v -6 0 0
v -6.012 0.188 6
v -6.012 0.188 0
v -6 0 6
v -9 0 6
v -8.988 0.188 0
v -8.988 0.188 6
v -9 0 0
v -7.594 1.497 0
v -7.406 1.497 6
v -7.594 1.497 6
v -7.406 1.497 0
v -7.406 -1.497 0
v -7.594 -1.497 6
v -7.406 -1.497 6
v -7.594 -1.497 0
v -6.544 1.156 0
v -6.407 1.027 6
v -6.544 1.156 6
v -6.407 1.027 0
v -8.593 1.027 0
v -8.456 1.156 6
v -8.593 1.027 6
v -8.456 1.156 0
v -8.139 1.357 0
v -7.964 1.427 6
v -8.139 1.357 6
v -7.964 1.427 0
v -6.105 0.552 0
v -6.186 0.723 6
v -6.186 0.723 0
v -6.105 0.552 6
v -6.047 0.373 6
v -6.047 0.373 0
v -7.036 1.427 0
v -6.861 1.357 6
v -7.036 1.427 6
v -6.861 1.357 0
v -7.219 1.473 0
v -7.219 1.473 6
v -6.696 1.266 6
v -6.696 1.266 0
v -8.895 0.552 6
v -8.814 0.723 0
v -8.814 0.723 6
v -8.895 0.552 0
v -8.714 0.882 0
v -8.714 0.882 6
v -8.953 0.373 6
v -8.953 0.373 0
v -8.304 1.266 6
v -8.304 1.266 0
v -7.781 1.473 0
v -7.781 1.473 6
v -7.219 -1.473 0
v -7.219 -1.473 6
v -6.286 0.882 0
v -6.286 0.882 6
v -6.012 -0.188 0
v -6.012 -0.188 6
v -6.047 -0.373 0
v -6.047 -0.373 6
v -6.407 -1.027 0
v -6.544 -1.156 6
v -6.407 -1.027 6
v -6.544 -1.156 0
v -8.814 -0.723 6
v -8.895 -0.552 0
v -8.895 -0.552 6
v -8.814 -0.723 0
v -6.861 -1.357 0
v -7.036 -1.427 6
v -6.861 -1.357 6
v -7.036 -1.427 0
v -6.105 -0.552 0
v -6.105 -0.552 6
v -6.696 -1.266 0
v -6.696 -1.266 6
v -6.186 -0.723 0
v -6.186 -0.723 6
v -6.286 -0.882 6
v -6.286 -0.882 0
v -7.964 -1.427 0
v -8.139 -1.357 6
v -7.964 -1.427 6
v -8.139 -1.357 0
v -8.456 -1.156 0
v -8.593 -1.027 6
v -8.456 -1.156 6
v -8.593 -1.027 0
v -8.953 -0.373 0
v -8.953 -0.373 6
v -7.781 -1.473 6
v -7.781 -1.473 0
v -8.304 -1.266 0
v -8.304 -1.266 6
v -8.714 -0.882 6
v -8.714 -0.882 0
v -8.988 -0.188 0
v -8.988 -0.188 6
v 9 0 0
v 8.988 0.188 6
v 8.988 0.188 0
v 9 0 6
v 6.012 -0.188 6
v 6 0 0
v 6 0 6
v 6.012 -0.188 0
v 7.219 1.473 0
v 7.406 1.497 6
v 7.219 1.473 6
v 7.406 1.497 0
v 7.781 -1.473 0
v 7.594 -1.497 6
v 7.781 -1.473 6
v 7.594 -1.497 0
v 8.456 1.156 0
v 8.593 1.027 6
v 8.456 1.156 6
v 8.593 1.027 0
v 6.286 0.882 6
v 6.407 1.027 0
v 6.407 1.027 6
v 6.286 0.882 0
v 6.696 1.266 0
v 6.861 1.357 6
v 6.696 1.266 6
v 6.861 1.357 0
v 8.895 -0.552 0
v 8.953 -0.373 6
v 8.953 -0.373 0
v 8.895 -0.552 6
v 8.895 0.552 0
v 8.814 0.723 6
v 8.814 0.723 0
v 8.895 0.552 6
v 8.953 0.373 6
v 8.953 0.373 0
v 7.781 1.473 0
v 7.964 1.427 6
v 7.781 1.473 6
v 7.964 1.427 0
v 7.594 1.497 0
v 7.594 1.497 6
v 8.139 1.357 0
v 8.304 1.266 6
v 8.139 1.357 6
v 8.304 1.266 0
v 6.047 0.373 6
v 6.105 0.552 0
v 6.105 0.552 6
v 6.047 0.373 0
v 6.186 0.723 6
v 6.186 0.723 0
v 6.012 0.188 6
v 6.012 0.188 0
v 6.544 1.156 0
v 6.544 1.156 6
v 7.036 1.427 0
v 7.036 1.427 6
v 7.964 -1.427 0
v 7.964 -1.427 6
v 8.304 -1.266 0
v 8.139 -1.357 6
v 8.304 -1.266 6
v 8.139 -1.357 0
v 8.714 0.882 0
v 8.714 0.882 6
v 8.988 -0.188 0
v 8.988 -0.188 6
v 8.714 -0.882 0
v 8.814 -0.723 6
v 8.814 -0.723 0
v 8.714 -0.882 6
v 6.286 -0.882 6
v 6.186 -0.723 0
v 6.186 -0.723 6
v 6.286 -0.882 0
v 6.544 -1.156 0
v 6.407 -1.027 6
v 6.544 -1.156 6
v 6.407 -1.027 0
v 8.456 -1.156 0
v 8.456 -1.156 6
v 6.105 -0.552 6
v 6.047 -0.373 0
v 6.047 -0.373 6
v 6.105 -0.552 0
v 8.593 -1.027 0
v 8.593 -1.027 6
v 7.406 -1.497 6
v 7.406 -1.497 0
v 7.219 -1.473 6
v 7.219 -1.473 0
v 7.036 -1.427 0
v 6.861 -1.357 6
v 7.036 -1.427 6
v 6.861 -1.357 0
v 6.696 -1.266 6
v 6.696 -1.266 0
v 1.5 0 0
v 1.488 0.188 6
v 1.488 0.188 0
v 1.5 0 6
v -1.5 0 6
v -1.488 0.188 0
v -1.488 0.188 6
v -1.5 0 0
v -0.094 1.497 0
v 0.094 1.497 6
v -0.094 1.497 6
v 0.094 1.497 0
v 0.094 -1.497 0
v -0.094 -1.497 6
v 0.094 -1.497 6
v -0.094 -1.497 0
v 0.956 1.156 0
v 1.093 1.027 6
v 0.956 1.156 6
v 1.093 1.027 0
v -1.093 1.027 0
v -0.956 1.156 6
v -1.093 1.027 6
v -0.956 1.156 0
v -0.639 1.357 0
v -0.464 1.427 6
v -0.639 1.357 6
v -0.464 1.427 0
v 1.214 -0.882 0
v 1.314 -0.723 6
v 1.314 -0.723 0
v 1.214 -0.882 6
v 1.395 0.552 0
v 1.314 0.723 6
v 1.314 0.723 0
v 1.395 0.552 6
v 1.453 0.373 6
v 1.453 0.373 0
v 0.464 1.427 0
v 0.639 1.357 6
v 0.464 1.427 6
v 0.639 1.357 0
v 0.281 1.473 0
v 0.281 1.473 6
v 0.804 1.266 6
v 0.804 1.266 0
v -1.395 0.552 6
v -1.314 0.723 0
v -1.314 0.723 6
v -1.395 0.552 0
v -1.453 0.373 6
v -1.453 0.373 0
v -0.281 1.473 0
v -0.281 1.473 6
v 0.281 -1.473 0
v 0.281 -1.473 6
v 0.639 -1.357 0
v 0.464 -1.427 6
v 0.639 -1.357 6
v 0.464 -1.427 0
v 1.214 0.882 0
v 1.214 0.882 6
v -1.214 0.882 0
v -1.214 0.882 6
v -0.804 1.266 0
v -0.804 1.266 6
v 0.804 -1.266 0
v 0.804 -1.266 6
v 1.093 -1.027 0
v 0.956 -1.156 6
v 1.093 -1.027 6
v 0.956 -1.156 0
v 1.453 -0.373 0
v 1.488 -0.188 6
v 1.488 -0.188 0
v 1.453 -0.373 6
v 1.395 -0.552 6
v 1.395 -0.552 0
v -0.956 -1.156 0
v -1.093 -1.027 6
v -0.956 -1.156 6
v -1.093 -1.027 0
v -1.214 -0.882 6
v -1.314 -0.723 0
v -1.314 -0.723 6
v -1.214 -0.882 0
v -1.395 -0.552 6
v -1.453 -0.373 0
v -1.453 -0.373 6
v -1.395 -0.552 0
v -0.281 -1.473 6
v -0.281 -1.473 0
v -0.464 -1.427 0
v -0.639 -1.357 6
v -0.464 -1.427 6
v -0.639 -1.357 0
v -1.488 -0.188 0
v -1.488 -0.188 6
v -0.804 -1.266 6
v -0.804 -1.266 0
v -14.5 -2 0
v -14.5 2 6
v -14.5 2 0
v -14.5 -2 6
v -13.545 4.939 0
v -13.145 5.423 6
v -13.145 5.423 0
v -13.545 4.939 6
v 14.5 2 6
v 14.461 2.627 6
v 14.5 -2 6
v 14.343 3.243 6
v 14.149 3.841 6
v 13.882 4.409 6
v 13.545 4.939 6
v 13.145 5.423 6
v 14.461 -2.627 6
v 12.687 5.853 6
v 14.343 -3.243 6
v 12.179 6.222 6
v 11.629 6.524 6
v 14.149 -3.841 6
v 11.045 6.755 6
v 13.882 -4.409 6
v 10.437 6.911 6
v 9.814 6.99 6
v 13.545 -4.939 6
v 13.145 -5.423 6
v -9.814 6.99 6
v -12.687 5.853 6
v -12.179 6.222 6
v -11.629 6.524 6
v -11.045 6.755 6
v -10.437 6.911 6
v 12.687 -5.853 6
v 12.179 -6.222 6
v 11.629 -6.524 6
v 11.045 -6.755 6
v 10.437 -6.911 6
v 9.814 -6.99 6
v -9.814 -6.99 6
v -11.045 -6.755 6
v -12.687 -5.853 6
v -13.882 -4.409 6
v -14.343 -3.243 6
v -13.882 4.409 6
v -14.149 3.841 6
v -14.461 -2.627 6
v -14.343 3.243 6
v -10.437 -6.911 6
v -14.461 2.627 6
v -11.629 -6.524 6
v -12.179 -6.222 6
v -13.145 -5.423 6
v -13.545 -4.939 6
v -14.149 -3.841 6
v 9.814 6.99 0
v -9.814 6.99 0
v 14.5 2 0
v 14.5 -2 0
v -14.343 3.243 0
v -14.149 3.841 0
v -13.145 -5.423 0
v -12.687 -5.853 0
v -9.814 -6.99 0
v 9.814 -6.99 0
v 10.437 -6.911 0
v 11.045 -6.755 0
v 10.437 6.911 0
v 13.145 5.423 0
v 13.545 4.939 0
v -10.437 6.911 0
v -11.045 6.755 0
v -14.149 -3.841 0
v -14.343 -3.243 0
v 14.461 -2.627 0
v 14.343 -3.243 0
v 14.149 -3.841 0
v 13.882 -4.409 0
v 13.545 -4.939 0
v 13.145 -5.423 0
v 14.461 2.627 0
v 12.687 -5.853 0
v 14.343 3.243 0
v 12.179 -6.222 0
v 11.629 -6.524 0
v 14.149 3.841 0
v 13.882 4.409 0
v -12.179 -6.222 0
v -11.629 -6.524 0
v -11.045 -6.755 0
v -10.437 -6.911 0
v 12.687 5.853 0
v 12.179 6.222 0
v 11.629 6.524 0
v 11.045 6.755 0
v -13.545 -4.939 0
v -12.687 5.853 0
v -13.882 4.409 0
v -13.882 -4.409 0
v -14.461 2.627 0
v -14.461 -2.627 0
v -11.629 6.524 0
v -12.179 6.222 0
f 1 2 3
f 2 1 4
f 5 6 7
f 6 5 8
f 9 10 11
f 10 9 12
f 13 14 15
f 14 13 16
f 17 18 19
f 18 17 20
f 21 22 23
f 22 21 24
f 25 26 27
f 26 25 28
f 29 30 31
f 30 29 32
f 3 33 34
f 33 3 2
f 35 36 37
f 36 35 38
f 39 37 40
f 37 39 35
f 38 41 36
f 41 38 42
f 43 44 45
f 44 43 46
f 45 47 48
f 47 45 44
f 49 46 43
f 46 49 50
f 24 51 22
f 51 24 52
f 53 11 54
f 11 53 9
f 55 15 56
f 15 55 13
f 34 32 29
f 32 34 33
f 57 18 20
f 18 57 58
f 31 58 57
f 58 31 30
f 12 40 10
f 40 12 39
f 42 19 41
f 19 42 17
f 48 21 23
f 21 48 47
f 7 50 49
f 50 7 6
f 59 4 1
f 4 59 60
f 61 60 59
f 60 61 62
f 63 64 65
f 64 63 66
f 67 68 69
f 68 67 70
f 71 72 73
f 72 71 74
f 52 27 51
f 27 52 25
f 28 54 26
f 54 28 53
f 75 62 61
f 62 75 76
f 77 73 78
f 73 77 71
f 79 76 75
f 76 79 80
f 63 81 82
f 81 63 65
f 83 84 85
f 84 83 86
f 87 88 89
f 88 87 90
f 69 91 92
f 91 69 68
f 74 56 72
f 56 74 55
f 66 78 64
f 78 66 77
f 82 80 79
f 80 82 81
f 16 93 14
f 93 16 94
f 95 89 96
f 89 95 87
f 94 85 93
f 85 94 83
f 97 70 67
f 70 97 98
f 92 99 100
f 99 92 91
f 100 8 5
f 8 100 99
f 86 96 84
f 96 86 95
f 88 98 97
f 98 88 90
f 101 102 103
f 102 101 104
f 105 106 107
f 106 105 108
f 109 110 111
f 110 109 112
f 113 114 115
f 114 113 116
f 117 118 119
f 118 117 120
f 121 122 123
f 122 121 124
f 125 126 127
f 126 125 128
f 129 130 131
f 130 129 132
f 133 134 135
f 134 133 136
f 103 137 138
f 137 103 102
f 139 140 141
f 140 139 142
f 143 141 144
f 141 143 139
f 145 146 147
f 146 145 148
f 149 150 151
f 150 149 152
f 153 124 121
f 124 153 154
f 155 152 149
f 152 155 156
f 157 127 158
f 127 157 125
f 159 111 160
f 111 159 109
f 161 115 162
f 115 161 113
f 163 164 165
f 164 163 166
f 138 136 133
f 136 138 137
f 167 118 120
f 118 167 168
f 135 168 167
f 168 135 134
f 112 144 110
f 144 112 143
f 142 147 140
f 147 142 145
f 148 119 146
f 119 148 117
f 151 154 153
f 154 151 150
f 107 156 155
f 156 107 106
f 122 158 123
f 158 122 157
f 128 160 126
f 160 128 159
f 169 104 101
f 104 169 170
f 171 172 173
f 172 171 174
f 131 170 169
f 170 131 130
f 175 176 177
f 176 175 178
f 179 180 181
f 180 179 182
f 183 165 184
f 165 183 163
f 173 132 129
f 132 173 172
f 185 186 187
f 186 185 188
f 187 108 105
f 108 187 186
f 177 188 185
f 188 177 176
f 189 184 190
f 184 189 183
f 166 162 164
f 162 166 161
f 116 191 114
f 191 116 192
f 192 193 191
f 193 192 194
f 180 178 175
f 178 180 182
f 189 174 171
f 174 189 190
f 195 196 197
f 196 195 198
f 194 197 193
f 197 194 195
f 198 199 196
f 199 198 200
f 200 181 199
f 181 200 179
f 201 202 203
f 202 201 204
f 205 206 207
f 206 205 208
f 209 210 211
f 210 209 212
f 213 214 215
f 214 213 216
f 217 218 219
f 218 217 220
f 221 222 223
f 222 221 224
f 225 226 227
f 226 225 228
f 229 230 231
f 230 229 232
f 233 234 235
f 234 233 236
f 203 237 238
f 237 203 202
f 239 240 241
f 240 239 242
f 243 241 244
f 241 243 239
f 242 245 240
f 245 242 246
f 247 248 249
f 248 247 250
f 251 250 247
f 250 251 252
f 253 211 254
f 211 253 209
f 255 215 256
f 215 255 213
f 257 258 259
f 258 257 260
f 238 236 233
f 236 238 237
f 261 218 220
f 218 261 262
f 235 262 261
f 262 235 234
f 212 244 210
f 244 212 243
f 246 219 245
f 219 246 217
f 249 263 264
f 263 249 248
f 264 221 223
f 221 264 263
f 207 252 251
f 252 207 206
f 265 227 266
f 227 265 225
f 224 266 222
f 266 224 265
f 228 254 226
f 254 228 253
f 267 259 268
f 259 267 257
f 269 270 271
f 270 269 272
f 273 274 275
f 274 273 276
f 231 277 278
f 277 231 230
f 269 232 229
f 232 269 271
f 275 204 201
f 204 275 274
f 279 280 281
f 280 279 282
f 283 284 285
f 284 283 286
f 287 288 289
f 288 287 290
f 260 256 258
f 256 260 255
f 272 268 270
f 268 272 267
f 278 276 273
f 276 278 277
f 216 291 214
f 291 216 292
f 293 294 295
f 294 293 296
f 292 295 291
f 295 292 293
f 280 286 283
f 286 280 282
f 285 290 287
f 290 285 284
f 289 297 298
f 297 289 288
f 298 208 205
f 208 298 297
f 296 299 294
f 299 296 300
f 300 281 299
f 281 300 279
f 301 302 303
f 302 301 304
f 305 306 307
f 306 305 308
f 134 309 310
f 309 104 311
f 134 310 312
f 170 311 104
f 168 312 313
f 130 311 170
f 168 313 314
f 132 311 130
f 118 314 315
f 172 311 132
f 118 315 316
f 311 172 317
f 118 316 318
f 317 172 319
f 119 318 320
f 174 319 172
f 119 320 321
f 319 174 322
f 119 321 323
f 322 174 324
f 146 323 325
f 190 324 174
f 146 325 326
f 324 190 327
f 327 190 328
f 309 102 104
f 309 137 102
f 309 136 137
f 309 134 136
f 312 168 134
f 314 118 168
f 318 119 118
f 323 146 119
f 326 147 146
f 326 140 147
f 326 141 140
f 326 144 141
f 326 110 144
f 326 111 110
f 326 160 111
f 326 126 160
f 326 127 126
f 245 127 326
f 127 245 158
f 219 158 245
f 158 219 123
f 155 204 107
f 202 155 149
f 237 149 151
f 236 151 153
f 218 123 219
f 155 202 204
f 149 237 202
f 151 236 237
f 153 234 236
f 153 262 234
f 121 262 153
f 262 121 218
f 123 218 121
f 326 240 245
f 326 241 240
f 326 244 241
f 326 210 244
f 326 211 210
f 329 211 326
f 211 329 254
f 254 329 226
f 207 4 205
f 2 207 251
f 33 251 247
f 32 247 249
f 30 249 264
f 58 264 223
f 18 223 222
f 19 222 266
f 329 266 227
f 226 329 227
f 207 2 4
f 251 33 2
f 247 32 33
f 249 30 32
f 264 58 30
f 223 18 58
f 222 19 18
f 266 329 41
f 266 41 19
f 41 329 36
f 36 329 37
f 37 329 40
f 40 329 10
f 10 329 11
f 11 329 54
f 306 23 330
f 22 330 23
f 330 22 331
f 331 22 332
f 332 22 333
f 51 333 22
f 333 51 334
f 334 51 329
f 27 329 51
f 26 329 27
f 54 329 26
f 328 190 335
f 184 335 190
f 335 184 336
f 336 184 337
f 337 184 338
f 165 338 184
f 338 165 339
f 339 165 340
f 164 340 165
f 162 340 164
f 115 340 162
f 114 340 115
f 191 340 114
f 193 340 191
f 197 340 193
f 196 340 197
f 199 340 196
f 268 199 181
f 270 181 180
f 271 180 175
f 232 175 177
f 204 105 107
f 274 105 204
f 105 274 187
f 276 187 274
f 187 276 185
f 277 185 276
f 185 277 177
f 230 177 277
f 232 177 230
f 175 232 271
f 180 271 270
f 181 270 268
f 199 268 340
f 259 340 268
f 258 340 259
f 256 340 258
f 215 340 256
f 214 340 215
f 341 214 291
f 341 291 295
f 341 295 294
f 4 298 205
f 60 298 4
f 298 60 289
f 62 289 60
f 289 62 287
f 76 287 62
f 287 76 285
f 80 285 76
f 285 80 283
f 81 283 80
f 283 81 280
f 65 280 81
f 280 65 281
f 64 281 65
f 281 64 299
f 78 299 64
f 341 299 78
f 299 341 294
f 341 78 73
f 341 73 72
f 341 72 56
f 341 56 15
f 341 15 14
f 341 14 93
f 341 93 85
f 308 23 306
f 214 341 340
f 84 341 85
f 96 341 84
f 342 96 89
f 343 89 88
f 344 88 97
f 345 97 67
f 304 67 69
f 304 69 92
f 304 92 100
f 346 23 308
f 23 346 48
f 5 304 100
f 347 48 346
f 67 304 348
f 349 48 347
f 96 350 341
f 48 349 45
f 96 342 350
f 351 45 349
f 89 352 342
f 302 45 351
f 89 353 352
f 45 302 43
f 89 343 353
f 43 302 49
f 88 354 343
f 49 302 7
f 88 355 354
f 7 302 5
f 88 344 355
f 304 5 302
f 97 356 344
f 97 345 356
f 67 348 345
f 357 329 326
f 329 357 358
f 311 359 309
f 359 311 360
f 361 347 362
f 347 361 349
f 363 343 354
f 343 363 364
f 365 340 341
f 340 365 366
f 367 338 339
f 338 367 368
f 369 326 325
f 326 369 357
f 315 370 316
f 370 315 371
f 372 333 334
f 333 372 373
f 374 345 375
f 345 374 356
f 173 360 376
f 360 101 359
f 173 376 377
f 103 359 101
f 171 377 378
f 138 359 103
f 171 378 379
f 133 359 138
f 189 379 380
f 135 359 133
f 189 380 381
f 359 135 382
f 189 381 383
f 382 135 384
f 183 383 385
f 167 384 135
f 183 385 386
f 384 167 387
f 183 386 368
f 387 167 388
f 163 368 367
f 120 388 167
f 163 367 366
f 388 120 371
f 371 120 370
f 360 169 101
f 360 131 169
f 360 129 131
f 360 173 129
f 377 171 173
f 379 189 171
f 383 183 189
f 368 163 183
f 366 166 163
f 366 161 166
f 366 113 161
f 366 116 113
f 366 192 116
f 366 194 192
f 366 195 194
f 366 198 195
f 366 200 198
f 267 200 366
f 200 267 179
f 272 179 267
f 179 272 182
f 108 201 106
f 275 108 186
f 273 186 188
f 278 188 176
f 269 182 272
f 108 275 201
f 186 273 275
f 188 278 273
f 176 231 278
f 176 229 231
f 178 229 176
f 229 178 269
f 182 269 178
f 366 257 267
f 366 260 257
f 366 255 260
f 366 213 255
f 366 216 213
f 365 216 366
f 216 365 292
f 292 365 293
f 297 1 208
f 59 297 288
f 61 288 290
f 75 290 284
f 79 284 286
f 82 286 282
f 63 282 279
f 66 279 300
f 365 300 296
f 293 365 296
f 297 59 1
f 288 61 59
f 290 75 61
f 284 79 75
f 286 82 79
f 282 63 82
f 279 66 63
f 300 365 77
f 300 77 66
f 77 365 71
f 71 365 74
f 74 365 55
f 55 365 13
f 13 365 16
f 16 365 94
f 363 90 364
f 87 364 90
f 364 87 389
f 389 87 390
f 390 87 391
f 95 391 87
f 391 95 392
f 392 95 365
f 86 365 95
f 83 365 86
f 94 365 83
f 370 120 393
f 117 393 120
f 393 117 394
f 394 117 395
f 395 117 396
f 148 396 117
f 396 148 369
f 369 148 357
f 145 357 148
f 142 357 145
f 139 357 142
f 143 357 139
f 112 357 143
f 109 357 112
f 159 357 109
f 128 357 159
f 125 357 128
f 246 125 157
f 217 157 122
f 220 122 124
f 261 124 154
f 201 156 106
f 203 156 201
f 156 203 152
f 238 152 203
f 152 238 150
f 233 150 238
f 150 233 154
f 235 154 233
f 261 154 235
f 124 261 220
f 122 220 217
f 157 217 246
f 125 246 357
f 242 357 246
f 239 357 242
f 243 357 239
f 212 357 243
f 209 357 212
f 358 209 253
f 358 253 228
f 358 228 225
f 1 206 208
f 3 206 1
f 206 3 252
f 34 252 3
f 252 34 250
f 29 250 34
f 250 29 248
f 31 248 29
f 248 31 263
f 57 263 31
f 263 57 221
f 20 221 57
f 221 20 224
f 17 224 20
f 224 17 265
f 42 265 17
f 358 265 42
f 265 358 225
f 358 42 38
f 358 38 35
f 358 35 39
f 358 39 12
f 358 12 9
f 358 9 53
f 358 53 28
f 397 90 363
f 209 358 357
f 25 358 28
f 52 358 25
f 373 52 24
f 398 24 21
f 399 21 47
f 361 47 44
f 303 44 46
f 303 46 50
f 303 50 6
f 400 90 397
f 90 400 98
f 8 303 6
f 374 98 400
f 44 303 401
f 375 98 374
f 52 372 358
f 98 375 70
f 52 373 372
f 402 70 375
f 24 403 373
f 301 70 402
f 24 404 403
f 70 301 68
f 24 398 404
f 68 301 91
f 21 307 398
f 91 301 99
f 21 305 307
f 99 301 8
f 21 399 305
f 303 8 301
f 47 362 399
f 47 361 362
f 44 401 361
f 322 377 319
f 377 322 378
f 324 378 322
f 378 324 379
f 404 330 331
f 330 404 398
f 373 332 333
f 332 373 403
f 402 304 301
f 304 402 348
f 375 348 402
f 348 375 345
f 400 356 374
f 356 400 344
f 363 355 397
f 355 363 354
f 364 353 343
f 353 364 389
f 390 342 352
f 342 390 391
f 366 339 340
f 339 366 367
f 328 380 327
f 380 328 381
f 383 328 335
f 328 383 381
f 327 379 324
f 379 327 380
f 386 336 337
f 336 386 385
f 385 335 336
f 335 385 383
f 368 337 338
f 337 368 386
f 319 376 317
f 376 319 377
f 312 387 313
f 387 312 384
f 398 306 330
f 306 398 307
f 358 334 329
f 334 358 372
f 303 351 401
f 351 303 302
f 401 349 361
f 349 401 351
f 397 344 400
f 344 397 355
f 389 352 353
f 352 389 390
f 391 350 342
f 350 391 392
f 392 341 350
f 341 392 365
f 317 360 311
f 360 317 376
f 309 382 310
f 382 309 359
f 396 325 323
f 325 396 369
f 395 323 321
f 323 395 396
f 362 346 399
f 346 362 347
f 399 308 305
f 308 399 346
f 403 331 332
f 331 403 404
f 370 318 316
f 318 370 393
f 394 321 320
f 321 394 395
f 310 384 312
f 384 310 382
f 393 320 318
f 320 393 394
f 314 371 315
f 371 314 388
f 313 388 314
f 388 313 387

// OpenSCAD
$fn = 50;


difference() {
	union() {
		hull() {
			translate(v = [-9.5000000000, 2.0000000000, 0]) {
				cylinder(h = 6, r = 5);
			}
			translate(v = [9.5000000000, 2.0000000000, 0]) {
				cylinder(h = 6, r = 5);
			}
			translate(v = [-9.5000000000, -2.0000000000, 0]) {
				cylinder(h = 6, r = 5);
			}
			translate(v = [9.5000000000, -2.0000000000, 0]) {
				cylinder(h = 6, r = 5);
			}
		}
	}
	union() {
		translate(v = [-7.5000000000, 0.0000000000, 0]) {
			translate(v = [0, 0, -100]) {
				cylinder(h = 200, r = 1.5000000000);
			}
		}
		translate(v = [7.5000000000, 0.0000000000, 0]) {
			translate(v = [0, 0, -100]) {
				cylinder(h = 200, r = 1.5000000000);
			}
		}
		translate(v = [-7.5000000000, 0.0000000000, 0]) {
			translate(v = [0, 0, -100]) {
				cylinder(h = 200, r = 1.5000000000);
			}
		}
		translate(v = [0, 0, -100]) {
			cylinder(h = 200, r = 1.5000000000);
		}
		translate(v = [7.5000000000, 0.0000000000, 0]) {
			translate(v = [0, 0, -100]) {
				cylinder(h = 200, r = 1.5000000000);
			}
		}
	}
}
